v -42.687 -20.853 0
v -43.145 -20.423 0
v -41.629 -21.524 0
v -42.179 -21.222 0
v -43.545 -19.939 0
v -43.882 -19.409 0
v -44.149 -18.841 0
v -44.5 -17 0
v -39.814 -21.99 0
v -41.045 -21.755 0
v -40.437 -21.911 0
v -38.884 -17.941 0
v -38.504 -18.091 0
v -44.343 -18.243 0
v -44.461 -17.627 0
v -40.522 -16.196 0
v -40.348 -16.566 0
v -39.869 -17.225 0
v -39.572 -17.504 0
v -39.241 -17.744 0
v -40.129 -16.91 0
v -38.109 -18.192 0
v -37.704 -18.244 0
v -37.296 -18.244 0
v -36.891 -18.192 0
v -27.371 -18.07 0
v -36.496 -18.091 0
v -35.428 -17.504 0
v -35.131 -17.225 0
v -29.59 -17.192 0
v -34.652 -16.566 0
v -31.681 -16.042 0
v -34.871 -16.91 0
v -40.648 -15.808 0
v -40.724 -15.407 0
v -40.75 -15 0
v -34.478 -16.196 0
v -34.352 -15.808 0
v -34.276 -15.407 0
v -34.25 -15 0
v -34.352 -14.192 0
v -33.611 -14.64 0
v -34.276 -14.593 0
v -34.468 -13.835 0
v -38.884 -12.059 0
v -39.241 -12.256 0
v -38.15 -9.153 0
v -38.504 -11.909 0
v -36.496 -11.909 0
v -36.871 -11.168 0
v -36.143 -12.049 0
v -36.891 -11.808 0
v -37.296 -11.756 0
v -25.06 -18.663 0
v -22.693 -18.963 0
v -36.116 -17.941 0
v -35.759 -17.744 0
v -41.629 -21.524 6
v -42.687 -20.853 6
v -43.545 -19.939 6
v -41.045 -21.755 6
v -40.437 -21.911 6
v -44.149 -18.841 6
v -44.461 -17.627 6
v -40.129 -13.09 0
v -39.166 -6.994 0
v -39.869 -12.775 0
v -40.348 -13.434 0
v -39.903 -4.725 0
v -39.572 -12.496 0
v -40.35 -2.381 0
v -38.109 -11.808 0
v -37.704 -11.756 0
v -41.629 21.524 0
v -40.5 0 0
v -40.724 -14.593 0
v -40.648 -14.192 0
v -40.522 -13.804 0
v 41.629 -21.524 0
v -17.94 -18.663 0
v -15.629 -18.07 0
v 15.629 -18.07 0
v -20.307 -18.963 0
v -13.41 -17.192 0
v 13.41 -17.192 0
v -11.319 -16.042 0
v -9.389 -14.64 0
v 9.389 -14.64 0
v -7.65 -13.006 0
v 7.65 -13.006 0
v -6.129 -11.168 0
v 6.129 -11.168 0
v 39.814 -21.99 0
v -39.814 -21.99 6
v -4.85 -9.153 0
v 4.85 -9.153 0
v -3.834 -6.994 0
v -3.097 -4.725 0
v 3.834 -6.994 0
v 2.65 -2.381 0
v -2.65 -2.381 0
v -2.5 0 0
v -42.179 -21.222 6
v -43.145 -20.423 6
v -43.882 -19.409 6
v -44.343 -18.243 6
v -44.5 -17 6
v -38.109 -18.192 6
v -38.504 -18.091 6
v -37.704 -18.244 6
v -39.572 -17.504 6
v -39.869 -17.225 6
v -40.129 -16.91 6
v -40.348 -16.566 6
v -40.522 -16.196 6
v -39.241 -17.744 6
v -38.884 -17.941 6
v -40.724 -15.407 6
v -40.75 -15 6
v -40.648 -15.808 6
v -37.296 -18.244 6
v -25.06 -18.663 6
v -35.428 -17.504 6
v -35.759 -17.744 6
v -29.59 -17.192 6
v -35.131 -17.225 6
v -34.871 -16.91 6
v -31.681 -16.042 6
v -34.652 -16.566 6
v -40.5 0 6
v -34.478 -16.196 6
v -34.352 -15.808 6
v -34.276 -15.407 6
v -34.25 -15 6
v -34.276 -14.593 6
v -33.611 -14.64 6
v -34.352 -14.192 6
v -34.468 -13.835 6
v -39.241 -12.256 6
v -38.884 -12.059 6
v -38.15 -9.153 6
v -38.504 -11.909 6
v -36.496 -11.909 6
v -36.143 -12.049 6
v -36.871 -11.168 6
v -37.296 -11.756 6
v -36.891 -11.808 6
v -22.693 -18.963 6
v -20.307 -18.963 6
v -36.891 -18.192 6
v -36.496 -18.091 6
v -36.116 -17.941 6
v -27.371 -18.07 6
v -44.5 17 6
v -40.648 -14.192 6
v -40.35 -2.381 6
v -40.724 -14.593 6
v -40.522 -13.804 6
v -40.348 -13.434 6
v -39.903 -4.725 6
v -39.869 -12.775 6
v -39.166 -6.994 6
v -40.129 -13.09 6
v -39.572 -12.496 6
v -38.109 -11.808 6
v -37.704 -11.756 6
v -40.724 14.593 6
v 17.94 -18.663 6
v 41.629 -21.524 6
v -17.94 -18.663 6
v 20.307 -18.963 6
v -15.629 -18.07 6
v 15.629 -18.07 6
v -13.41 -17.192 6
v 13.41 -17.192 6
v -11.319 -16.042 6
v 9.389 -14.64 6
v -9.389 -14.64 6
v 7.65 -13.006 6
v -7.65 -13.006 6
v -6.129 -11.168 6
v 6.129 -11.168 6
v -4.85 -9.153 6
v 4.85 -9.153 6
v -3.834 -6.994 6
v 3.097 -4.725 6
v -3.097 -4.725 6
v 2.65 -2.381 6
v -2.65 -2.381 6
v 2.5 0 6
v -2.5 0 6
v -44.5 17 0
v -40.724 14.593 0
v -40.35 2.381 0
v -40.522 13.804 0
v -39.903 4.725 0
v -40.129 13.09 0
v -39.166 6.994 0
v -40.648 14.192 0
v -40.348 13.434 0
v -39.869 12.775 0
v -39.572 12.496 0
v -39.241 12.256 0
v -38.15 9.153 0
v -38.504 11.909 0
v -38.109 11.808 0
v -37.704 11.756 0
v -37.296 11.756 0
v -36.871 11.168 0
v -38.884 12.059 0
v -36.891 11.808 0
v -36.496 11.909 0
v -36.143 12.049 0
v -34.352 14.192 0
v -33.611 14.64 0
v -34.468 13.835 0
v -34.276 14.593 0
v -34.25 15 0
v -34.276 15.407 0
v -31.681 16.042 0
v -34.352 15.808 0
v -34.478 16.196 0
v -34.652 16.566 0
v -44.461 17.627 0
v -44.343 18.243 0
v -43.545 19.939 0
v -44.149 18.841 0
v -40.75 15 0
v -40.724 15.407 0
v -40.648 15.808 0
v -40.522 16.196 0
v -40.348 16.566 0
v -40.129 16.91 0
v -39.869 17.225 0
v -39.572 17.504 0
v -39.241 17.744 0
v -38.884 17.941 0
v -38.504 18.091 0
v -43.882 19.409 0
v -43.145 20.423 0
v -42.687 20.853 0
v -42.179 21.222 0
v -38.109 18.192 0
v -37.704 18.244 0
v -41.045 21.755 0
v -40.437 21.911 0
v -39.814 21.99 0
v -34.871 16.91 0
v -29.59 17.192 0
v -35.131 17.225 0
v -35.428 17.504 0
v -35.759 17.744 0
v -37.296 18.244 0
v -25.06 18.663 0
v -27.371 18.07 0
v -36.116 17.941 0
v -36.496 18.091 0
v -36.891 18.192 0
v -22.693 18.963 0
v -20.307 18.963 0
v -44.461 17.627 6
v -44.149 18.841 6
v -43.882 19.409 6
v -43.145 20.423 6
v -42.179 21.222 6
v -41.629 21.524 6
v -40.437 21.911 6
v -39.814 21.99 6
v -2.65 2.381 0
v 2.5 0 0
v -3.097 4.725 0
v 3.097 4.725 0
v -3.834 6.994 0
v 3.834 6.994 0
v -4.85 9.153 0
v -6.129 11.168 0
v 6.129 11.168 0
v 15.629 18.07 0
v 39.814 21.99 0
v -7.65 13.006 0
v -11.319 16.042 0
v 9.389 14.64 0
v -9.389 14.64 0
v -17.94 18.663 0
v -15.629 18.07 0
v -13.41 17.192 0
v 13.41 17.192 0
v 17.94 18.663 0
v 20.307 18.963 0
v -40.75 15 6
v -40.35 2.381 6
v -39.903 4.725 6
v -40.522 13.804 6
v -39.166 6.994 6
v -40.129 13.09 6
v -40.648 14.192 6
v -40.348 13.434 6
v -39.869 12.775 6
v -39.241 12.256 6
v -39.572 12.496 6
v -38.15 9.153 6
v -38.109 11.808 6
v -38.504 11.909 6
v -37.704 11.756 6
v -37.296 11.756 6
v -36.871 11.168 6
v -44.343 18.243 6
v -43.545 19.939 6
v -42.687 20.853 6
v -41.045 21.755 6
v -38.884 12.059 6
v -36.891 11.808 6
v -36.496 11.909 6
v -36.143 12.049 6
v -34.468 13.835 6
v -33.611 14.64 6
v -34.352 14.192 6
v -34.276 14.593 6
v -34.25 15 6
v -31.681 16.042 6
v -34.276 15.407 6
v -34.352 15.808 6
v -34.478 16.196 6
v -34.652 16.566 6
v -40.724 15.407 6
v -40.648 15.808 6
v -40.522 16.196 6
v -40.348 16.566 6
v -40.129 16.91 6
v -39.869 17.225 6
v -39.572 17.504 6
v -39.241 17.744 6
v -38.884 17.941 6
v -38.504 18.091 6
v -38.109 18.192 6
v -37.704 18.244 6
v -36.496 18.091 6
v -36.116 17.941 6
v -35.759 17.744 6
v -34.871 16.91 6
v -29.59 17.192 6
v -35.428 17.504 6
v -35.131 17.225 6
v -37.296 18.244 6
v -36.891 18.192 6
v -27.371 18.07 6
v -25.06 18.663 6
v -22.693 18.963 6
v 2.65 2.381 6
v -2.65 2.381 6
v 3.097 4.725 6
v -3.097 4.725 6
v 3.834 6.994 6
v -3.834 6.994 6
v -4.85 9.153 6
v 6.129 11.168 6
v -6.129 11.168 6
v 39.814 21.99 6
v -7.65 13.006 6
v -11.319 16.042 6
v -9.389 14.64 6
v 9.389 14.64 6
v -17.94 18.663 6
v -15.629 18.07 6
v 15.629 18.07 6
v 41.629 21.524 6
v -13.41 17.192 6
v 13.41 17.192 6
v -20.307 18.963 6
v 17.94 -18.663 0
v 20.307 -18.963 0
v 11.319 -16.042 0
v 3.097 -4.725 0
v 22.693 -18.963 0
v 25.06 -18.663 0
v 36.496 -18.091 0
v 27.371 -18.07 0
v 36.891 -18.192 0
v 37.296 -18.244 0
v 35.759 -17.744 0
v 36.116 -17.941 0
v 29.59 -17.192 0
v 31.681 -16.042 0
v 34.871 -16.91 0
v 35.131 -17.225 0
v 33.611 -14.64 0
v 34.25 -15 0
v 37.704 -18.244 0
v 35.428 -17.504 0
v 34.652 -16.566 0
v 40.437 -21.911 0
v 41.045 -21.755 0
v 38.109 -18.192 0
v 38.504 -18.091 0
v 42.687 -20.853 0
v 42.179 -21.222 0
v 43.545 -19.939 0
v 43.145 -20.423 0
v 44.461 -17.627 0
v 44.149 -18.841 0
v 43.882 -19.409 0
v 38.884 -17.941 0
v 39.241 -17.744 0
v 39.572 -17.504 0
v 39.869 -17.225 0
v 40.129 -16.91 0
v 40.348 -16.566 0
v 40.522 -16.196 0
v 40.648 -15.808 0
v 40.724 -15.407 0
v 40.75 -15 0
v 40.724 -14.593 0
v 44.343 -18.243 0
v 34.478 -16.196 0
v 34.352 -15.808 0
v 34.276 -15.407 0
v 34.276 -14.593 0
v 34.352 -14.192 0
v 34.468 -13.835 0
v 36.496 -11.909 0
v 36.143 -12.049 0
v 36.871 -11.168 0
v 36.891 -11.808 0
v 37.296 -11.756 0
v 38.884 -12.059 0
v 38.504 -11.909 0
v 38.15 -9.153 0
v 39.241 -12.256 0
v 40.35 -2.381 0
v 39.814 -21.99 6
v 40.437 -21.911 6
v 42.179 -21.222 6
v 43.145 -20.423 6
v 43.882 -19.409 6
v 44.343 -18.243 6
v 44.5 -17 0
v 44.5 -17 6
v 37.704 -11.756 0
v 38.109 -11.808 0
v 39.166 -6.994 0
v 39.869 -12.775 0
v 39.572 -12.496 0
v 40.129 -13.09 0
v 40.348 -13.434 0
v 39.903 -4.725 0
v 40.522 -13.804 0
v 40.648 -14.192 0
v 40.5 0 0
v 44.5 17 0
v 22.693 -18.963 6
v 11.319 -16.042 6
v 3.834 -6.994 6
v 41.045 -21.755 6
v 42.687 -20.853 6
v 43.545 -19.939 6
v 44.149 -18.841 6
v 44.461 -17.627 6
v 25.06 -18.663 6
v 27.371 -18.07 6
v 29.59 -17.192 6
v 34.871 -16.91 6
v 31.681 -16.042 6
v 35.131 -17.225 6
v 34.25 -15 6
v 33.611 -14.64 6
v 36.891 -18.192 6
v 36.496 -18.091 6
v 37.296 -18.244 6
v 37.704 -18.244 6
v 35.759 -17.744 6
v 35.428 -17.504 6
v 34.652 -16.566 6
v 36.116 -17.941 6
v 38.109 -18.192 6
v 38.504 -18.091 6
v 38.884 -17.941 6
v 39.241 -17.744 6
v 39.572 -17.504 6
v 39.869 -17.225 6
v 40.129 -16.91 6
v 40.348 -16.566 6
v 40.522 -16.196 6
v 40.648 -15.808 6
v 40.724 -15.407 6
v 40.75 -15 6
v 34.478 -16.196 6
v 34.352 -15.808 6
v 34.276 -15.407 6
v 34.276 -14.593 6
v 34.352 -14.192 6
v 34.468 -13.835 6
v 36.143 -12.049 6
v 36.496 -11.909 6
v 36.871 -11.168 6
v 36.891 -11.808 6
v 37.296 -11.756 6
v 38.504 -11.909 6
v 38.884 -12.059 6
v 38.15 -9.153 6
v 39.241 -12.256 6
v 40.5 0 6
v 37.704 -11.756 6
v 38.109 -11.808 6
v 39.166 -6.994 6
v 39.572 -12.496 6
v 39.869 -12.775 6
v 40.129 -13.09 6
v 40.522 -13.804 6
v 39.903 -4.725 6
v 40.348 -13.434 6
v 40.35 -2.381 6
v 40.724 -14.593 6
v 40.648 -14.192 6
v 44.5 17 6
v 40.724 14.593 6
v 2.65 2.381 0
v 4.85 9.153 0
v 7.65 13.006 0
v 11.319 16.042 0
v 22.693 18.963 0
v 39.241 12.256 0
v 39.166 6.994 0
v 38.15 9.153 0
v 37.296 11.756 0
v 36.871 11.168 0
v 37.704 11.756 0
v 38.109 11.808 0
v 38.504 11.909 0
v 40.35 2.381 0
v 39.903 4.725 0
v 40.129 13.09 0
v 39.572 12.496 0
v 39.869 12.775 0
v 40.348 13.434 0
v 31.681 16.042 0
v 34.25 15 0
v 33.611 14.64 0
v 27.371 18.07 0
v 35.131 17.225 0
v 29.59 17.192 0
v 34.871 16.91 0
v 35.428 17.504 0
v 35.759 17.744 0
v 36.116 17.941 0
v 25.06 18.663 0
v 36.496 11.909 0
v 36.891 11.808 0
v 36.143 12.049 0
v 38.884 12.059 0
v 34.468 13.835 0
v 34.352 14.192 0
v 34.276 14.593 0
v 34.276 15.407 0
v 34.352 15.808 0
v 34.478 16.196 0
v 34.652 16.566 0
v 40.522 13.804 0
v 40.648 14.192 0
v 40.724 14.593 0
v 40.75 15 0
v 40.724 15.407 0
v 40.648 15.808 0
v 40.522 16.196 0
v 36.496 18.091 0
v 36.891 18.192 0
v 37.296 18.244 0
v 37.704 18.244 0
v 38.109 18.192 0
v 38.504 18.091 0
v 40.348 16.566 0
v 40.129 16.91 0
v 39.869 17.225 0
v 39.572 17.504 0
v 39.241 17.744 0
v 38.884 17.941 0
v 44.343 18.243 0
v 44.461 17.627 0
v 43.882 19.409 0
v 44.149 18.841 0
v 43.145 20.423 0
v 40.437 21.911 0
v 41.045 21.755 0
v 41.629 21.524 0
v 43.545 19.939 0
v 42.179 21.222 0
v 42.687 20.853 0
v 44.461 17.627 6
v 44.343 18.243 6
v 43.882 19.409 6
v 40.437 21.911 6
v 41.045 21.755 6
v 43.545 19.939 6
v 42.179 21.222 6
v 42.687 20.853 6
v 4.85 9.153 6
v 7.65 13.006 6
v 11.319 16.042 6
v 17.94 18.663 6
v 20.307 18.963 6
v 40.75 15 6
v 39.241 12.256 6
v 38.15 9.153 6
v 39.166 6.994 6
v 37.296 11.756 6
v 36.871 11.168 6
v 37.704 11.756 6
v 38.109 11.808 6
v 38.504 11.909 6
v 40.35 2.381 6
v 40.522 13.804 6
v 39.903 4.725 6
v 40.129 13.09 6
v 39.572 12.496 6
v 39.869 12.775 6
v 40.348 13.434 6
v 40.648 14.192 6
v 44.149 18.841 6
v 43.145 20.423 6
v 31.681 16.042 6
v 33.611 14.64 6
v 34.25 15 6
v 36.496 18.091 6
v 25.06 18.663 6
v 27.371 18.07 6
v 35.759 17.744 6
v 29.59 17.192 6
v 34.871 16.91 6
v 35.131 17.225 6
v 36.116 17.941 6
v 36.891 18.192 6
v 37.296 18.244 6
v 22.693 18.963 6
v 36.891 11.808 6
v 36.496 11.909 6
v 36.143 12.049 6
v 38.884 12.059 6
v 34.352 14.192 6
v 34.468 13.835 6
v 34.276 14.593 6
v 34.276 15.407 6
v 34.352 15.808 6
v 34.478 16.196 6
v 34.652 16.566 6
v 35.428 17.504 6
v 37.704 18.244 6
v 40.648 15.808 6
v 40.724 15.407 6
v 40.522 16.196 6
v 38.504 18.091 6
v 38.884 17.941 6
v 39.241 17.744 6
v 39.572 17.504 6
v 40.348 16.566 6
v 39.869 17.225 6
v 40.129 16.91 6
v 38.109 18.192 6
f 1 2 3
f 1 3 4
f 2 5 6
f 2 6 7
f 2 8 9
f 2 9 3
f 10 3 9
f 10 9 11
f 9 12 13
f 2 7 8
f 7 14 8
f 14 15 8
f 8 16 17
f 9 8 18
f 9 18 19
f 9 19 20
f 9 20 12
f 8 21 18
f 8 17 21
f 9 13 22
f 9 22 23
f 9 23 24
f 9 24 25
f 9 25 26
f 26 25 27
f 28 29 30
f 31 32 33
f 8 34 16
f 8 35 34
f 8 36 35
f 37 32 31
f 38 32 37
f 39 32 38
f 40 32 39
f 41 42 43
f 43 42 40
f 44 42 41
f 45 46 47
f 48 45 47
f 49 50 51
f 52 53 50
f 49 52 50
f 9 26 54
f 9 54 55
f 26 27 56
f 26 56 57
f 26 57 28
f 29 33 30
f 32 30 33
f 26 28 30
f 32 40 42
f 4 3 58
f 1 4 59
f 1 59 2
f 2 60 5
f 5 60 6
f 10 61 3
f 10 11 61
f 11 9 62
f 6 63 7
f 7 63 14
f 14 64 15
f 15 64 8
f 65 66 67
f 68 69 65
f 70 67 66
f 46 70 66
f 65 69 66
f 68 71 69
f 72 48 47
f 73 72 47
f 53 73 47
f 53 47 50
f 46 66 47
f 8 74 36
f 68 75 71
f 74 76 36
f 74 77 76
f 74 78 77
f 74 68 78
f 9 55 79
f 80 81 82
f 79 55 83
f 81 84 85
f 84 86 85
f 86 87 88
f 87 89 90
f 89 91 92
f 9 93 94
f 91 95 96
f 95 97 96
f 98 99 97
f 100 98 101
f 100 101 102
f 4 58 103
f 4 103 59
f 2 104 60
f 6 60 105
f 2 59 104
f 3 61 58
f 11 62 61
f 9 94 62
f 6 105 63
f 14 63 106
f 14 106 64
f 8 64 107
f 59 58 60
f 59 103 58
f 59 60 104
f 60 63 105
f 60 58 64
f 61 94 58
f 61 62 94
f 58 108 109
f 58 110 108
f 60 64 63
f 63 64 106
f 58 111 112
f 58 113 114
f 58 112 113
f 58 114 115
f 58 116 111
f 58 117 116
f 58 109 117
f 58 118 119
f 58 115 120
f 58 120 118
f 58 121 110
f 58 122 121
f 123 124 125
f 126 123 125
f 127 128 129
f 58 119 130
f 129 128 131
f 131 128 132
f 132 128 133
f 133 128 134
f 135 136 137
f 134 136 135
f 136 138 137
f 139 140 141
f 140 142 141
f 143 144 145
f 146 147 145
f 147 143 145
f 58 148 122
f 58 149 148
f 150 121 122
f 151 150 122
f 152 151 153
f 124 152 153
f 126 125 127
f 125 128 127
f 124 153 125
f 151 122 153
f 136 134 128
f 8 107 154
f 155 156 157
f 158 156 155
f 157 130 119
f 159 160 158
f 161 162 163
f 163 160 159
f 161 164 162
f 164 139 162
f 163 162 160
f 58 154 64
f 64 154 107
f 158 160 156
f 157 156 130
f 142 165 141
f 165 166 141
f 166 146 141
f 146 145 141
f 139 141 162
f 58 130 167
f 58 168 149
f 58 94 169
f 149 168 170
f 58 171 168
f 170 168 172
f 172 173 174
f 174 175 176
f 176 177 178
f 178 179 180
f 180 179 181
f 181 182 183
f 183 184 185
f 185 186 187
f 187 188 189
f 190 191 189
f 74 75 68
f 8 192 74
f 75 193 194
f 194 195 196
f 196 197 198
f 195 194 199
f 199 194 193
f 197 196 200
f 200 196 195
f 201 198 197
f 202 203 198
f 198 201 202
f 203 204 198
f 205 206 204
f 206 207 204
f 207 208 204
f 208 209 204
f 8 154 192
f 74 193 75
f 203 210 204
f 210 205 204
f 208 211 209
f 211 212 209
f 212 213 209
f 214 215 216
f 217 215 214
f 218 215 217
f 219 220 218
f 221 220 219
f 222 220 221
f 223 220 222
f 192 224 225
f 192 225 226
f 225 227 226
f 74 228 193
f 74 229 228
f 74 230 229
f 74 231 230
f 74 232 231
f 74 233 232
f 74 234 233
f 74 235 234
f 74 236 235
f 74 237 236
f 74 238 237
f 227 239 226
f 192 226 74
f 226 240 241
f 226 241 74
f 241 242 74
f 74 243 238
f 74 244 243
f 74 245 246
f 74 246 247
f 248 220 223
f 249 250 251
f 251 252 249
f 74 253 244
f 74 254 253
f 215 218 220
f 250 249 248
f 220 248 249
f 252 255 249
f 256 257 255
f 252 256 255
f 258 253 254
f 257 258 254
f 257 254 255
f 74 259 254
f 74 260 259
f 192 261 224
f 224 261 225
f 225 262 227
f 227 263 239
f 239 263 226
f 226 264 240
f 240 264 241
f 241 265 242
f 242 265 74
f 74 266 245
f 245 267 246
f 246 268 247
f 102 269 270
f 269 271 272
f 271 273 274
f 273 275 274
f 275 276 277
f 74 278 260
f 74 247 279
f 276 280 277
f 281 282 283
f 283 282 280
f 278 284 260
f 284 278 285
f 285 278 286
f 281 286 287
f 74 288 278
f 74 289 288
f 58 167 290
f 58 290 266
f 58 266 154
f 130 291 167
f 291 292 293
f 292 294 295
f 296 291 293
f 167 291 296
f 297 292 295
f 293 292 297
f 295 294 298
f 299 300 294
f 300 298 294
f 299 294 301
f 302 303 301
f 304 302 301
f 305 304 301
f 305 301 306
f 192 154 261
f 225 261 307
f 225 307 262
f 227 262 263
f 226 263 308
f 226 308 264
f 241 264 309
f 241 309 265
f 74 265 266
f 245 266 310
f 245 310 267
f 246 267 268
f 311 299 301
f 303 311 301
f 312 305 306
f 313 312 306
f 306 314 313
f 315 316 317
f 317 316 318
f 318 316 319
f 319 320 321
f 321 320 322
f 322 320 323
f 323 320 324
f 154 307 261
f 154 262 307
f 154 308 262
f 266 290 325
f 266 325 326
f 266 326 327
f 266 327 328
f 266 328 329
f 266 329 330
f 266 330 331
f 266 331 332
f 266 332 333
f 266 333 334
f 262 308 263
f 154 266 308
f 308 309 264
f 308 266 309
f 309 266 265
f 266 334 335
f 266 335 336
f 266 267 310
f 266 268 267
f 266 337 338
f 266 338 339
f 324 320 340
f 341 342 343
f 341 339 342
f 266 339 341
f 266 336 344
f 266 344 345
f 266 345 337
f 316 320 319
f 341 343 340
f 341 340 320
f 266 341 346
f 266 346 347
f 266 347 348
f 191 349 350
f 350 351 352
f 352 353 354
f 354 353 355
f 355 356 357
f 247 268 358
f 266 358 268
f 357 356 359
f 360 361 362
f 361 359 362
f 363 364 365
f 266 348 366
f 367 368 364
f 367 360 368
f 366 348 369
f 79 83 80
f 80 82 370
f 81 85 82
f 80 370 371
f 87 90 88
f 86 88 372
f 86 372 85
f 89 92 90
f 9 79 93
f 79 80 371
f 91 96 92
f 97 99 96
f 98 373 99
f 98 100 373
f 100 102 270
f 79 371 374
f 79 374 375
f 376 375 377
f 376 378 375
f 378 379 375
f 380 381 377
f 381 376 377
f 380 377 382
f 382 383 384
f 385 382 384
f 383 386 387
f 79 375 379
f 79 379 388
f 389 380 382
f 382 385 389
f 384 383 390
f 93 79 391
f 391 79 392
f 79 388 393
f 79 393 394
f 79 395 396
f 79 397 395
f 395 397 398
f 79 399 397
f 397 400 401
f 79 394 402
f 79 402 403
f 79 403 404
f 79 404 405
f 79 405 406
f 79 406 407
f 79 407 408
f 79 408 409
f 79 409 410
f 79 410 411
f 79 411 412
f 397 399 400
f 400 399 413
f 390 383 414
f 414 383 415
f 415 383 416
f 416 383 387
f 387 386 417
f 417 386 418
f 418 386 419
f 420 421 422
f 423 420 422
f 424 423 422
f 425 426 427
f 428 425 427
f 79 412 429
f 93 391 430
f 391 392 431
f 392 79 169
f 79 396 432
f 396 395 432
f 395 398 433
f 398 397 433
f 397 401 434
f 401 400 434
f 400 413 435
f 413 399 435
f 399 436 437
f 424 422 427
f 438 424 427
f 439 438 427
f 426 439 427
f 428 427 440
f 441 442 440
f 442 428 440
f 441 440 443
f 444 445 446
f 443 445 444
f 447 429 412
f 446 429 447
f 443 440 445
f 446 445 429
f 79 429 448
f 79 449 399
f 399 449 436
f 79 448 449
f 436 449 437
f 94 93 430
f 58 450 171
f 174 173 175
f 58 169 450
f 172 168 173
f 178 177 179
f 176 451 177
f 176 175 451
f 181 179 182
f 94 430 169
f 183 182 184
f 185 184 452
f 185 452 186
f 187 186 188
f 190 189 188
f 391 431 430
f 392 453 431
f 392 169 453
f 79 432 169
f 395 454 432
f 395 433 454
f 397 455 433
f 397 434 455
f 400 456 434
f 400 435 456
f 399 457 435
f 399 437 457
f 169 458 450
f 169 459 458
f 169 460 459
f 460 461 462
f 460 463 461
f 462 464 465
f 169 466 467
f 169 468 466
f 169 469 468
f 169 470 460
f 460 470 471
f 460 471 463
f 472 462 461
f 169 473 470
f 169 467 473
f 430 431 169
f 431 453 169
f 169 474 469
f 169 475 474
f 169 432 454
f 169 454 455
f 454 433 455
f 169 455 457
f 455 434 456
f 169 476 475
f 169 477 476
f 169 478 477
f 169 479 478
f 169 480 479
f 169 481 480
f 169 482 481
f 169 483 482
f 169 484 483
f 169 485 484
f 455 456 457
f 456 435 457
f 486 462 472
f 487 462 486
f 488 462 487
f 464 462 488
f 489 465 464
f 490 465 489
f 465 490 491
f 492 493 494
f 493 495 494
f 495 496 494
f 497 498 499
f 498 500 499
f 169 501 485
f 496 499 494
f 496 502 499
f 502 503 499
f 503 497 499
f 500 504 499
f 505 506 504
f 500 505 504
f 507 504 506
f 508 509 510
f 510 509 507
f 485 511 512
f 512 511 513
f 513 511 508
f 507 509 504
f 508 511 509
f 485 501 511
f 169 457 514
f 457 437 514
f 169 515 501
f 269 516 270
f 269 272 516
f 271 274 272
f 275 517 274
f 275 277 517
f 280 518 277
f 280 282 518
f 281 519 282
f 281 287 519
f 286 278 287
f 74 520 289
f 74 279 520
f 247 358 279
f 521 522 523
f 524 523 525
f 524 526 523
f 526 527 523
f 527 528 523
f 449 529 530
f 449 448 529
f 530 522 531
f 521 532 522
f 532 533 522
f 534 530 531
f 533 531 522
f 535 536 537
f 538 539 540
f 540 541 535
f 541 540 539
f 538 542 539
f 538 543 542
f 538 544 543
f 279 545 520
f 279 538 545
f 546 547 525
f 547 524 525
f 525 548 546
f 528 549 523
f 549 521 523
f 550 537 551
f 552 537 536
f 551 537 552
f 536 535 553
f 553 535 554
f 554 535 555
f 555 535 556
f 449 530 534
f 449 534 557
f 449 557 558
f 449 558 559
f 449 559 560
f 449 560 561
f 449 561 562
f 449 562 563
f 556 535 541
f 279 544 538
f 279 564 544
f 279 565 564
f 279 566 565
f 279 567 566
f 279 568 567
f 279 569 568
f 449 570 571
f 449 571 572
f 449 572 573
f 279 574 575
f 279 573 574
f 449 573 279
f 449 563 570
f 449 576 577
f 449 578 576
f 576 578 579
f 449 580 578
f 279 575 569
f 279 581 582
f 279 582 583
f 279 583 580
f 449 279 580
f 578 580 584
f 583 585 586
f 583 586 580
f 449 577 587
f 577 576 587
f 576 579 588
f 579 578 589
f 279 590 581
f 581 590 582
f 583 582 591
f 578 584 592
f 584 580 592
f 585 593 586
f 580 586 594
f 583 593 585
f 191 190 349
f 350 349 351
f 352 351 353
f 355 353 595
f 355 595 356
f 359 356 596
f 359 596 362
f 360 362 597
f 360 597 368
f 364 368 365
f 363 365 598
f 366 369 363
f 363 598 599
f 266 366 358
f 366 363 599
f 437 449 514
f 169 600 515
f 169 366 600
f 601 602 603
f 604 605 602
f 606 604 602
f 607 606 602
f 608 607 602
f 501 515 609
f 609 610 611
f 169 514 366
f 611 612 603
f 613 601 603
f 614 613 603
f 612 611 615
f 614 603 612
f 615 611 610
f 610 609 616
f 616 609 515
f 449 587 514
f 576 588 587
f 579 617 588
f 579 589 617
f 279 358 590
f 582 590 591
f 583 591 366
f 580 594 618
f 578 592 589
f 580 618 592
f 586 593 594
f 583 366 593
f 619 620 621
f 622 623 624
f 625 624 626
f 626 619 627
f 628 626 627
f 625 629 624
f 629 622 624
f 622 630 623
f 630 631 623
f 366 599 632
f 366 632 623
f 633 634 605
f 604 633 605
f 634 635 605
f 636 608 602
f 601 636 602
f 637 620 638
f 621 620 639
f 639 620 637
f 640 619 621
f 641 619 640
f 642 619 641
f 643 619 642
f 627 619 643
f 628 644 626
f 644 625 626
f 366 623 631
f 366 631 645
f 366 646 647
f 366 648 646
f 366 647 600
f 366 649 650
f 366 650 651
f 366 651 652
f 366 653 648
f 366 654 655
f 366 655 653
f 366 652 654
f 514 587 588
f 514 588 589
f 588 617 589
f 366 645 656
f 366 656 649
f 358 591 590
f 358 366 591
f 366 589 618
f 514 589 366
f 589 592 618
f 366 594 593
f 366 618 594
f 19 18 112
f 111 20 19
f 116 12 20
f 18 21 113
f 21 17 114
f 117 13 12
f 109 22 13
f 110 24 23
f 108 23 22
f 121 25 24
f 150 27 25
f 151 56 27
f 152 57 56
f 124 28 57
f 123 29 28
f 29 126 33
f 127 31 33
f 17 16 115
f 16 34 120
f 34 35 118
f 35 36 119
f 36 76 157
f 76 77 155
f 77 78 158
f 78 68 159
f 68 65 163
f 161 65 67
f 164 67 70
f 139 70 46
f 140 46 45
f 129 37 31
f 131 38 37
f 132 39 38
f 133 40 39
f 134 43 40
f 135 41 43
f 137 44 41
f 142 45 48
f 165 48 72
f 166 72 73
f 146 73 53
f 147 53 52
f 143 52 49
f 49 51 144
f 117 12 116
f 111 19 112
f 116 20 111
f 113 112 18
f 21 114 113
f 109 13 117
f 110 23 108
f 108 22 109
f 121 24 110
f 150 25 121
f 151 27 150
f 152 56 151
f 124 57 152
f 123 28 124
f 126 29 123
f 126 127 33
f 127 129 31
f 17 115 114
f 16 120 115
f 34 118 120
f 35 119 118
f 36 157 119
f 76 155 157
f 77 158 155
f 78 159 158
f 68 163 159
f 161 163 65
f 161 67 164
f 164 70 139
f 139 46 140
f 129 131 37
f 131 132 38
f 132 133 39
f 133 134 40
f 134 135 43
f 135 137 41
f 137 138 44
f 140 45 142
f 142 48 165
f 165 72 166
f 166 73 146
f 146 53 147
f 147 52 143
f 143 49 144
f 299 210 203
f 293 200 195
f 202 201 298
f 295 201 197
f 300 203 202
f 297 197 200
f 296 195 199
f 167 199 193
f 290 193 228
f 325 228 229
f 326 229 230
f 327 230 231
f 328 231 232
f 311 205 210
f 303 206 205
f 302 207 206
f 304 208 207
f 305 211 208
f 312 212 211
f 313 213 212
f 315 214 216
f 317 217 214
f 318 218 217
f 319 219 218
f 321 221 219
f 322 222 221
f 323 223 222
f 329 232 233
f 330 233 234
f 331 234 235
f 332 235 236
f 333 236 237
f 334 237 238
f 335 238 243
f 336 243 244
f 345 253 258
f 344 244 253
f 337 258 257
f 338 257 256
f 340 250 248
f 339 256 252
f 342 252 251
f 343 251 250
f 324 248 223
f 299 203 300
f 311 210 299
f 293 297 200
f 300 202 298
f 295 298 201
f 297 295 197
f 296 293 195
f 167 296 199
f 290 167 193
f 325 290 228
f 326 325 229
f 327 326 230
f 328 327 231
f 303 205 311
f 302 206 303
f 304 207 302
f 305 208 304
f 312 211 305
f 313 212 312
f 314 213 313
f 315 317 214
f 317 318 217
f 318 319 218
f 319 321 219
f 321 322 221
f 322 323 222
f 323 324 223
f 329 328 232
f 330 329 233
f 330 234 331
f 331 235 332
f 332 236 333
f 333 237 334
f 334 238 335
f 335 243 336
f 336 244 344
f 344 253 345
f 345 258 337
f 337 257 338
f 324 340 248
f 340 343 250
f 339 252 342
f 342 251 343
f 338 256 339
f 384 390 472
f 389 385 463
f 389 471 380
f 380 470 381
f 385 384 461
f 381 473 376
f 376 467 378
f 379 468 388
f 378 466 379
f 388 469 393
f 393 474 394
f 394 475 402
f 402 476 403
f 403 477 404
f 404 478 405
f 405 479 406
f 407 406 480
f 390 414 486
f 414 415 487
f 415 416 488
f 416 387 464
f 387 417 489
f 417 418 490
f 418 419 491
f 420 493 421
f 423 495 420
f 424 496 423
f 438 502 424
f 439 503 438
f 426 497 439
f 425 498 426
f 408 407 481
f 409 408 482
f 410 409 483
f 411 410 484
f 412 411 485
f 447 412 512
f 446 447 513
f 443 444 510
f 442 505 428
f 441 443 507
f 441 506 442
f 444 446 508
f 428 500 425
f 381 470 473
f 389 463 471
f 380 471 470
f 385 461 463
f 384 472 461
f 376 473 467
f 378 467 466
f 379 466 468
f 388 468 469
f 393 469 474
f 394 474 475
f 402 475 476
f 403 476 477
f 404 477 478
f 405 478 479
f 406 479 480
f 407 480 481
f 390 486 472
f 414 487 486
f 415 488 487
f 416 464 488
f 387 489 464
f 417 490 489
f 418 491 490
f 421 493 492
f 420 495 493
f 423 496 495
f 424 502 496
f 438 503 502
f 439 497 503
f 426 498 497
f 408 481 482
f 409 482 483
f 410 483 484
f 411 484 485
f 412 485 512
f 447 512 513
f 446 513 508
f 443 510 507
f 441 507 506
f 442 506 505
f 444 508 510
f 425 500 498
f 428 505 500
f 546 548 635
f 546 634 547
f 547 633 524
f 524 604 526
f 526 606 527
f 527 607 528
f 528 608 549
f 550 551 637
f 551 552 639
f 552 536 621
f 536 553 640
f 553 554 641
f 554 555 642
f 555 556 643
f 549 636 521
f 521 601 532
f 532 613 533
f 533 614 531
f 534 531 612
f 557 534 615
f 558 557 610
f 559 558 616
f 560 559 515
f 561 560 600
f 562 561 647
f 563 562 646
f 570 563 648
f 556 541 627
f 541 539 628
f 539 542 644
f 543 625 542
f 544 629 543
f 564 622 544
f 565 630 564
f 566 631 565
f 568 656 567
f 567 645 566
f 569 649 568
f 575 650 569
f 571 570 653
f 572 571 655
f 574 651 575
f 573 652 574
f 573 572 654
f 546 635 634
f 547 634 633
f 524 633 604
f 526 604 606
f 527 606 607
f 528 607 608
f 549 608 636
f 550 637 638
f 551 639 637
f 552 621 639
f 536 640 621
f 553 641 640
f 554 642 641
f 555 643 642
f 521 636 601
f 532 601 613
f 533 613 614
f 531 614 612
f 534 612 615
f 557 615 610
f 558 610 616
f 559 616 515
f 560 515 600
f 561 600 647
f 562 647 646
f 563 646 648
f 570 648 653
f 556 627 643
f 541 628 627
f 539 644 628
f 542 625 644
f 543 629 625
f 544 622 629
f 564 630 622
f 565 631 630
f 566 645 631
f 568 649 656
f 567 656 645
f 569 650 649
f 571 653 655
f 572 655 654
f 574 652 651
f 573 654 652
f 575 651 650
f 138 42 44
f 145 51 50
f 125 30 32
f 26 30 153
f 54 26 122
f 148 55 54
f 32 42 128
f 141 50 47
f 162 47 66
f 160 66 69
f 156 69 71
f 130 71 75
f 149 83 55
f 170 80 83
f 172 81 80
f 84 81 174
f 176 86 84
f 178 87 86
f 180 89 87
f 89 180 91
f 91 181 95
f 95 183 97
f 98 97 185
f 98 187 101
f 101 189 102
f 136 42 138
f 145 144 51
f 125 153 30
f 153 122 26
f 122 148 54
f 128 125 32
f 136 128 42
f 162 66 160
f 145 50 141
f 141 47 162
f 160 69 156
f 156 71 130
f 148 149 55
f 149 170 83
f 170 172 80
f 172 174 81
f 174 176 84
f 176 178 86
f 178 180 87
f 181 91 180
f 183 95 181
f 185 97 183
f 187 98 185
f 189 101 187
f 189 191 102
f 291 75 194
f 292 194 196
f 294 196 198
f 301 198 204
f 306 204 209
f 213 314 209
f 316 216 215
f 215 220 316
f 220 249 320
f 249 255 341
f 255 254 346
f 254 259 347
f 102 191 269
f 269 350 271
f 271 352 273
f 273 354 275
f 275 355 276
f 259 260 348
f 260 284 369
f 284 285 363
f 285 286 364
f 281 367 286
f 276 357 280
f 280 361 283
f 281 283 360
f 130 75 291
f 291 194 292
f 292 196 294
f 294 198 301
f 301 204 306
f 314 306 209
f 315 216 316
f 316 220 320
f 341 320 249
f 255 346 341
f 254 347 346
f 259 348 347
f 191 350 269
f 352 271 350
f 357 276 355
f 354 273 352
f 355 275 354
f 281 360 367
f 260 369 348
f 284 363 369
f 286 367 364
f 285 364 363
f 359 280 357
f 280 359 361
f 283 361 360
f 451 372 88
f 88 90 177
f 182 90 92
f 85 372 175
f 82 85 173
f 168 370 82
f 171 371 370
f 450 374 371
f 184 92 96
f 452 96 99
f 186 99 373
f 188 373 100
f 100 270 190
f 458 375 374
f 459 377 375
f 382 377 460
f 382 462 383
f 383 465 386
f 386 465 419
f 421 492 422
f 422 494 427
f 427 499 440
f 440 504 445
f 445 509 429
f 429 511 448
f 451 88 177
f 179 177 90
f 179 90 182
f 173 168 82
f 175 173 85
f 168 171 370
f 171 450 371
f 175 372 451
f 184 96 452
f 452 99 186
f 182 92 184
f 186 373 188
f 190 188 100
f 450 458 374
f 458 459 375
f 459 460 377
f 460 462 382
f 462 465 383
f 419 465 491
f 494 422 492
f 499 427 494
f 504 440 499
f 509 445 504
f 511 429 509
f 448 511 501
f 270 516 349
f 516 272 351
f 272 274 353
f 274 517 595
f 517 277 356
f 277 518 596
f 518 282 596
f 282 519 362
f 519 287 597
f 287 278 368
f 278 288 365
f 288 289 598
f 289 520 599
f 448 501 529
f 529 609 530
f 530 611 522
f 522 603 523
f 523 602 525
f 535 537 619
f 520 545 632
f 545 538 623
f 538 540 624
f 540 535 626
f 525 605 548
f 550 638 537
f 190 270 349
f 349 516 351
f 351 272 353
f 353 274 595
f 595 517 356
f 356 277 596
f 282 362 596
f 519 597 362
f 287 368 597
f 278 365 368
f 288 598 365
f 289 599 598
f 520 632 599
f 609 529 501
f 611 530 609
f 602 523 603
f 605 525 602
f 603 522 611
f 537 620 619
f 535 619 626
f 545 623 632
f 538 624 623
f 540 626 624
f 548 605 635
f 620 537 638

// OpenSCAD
$fn = 50;

difference() {
	union() {
		hull() {
			translate(v = [-39.5, 17.0, 0]) {
				cylinder(h = 6, r = 5);
			}
			translate(v = [39.5, 17.0, 0]) {
				cylinder(h = 6, r = 5);
			}
			translate(v = [-39.5, -17.0, 0]) {
				cylinder(h = 6, r = 5);
			}
			translate(v = [39.5, -17.0, 0]) {
				cylinder(h = 6, r = 5);
			}
		}
	}
	union() {
		translate(v = [-37.5, -15.0, -100.0]) {
			cylinder(h = 200, r = 3.25);
		}
		translate(v = [-37.5, 15.0, -100.0]) {
			cylinder(h = 200, r = 3.25);
		}
		translate(v = [37.5, -15.0, -100.0]) {
			cylinder(h = 200, r = 3.25);
		}
		translate(v = [37.5, 15.0, -100.0]) {
			cylinder(h = 200, r = 3.25);
		}
		translate(v = [-37.5, -15.0, -100.0]) {
			cylinder(h = 200, r = 1.8);
		}
		translate(v = [-37.5, 15.0, -100.0]) {
			cylinder(h = 200, r = 1.8);
		}
		translate(v = [37.5, -15.0, -100.0]) {
			cylinder(h = 200, r = 1.8);
		}
		translate(v = [37.5, 15.0, -100.0]) {
			cylinder(h = 200, r = 1.8);
		}
		translate(v = [-21.5, 0, 0.0]) {
			cylinder(h = 6, r = 19.0);
		}
		translate(v = [21.5, 0, 0.0]) {
			cylinder(h = 6, r = 19.0);
		}
	}
}
